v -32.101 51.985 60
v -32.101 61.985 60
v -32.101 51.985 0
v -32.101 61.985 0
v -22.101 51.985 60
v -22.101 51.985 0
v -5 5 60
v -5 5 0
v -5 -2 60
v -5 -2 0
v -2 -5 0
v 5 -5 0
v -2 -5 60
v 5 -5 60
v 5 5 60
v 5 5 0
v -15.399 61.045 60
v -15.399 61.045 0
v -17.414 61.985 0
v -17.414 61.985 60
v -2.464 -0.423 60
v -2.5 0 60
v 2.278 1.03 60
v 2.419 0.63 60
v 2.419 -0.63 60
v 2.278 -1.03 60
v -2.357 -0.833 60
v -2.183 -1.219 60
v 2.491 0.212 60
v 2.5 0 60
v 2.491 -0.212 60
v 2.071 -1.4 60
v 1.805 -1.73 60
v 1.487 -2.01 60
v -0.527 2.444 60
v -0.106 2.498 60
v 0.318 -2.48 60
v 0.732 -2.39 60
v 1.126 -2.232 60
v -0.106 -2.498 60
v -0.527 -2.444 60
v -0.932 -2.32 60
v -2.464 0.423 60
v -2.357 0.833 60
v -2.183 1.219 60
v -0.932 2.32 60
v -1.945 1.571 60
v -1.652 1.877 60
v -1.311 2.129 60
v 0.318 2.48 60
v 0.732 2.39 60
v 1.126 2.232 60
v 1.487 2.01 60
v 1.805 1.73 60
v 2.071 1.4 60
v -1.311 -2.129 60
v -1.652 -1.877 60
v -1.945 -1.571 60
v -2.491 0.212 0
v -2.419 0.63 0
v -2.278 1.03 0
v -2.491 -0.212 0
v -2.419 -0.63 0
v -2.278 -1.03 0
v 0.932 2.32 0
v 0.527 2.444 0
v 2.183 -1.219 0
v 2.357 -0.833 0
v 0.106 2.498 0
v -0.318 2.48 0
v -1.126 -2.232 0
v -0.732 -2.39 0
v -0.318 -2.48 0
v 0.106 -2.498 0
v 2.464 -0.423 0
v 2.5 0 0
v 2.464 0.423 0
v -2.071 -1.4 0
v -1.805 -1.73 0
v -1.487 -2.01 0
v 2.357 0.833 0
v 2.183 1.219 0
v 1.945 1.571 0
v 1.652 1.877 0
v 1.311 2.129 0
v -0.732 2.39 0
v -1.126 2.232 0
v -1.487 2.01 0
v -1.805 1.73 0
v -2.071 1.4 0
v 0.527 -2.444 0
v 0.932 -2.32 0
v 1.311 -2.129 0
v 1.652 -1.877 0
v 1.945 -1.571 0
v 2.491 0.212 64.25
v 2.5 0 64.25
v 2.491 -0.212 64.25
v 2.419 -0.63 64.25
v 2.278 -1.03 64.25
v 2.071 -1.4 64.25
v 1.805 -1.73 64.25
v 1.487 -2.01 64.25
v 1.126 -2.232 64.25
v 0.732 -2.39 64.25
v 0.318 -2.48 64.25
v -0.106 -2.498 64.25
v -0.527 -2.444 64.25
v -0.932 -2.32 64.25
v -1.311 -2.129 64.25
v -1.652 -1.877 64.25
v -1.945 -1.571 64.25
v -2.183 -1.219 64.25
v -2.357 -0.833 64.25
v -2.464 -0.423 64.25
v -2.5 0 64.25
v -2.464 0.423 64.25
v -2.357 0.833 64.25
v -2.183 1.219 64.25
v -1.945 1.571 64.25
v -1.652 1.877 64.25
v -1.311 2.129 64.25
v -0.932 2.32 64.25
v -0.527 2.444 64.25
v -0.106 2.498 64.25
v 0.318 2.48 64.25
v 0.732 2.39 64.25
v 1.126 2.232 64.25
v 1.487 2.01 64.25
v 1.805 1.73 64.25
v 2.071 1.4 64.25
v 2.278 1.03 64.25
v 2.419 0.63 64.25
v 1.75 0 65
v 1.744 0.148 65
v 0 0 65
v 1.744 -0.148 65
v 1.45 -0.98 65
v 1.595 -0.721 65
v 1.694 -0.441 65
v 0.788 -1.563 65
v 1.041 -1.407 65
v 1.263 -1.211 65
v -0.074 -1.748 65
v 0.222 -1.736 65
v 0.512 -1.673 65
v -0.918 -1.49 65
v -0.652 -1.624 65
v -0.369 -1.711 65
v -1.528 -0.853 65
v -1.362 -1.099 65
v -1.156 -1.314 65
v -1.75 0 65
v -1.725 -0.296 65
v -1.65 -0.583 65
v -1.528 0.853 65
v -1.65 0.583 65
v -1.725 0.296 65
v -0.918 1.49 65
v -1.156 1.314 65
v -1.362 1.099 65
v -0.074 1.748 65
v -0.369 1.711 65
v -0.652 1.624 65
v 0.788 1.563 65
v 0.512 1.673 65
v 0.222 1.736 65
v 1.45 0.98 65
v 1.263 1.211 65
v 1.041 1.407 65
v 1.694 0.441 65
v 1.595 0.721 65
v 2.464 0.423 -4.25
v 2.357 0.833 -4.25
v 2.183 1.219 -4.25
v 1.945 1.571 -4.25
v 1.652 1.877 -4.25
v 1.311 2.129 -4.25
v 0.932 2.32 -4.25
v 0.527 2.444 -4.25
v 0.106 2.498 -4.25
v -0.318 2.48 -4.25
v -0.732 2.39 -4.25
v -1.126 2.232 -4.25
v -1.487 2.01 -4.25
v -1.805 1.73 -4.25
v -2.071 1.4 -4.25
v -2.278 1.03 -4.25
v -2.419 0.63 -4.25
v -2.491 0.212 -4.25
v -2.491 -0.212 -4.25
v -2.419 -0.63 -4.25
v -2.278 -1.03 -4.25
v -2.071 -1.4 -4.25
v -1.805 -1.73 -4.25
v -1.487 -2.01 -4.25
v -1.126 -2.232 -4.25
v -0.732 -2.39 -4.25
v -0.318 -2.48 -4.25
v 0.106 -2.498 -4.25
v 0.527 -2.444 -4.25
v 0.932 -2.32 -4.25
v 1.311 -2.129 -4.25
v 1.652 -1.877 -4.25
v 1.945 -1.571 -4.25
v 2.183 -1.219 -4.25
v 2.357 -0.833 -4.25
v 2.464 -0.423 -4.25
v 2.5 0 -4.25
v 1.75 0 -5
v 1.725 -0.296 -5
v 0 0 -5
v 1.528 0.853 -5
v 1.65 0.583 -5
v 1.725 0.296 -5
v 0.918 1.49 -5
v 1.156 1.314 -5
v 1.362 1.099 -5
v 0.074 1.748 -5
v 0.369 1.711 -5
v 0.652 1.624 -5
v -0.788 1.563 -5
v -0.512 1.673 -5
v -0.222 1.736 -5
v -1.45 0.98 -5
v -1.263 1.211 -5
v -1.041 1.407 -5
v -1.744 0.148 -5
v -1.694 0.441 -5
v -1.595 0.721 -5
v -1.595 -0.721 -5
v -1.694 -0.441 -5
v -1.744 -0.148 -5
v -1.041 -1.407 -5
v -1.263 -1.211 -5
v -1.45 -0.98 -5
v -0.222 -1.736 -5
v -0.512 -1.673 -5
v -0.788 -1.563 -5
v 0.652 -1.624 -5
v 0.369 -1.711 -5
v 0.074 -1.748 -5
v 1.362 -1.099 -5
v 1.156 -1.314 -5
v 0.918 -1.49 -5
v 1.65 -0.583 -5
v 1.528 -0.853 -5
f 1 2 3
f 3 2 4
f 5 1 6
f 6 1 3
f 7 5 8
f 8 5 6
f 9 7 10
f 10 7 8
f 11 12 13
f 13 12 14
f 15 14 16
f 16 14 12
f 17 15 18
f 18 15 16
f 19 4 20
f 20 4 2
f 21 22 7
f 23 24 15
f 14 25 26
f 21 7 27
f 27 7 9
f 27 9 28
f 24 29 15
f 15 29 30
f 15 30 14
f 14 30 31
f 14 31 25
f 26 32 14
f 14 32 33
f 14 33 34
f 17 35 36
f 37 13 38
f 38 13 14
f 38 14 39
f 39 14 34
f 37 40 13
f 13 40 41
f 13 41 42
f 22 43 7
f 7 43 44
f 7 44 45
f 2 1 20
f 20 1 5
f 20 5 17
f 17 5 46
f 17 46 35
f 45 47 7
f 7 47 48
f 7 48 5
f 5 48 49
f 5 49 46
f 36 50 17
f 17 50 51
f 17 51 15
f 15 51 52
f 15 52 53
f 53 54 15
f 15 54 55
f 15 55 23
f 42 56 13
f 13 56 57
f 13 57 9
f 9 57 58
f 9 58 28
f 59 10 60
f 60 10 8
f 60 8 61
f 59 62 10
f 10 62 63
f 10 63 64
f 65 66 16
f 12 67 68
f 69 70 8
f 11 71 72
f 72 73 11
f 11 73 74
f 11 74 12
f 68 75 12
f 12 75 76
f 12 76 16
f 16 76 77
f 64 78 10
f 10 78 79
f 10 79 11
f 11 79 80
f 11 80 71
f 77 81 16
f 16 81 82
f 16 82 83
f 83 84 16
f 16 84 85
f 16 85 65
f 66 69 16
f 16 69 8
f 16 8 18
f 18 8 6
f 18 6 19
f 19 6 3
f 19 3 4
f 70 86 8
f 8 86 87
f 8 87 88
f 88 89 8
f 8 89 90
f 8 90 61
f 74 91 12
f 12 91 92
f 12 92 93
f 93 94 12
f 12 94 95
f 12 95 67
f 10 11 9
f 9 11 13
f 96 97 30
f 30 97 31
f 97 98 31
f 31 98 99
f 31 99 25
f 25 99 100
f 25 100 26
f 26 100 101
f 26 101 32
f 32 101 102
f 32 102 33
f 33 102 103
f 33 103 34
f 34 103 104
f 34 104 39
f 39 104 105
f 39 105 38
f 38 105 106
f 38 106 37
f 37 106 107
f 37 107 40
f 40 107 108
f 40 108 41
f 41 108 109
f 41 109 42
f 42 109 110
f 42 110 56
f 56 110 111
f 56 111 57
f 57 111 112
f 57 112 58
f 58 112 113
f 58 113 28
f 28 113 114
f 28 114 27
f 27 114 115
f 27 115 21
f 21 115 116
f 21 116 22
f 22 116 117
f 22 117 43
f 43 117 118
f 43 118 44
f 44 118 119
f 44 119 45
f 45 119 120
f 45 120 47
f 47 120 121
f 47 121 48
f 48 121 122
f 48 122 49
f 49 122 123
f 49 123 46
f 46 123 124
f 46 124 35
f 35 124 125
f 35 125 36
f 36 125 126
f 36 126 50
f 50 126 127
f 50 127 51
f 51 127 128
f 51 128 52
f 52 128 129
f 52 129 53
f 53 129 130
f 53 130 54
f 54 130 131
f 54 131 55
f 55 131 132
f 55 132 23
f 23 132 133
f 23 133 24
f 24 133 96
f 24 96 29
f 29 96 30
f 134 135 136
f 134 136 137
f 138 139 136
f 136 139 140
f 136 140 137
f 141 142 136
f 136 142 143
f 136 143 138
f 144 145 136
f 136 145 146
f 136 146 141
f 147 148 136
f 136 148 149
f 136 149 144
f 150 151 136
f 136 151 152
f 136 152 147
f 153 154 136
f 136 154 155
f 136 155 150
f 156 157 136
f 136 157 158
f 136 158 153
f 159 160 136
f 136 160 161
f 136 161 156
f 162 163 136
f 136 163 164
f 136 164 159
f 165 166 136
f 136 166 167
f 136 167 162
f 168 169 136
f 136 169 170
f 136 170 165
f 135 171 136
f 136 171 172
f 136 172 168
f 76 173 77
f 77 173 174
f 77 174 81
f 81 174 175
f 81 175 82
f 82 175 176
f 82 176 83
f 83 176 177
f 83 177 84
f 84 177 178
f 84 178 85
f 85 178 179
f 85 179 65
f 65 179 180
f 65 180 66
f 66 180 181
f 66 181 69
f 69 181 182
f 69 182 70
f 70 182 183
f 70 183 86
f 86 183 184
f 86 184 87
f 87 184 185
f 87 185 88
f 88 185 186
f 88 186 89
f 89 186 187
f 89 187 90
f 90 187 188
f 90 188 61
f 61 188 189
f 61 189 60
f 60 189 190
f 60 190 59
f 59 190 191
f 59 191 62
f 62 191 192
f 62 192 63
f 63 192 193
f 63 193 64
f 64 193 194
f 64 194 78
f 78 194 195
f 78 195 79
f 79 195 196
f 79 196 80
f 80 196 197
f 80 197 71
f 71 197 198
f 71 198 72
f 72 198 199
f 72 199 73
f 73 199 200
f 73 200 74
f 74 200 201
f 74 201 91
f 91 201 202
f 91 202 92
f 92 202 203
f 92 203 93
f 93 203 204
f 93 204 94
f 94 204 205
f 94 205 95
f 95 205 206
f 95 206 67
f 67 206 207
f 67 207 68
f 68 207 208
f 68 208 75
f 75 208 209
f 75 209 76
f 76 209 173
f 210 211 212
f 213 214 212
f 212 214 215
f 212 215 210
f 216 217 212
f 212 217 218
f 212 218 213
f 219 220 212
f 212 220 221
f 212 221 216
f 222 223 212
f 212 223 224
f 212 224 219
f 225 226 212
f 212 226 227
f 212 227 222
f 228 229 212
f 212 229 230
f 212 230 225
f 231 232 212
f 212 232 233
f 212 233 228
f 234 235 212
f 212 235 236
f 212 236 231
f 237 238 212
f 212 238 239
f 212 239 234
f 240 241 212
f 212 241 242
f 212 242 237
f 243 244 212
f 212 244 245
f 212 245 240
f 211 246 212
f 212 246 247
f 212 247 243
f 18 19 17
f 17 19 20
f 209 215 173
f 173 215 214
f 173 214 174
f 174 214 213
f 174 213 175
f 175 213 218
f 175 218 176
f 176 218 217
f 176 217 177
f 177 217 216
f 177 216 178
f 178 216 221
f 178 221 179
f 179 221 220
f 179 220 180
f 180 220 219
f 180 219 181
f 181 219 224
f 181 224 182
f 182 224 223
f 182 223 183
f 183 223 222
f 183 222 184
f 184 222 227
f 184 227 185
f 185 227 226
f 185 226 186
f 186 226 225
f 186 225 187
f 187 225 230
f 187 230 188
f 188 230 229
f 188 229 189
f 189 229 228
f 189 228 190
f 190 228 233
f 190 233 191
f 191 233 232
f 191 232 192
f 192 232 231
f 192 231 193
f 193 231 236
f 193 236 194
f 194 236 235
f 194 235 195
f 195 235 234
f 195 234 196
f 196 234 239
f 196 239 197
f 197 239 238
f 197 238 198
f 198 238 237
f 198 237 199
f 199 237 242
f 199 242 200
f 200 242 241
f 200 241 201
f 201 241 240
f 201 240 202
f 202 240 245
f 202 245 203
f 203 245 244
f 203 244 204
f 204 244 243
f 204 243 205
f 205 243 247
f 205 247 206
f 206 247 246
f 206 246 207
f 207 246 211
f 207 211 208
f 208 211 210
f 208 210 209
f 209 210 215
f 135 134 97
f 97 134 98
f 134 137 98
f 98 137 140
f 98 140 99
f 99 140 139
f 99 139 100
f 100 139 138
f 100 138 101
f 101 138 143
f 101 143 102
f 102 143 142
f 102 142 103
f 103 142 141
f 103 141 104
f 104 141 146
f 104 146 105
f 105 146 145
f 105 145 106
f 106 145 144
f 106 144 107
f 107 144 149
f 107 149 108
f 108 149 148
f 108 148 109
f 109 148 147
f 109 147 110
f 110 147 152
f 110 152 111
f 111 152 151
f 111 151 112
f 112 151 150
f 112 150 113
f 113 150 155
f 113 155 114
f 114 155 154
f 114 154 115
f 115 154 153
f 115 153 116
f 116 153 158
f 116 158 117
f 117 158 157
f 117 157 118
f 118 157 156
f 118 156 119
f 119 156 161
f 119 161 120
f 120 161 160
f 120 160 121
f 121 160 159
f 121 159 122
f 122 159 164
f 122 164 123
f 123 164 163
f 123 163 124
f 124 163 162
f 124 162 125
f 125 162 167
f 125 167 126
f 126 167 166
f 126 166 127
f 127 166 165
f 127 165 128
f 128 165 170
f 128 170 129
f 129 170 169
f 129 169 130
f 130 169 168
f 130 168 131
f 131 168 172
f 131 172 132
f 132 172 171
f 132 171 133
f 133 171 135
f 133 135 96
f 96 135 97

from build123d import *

# Parameters (mm, degrees)
SKETCH1_W           = 10.000000000000004
SKETCH1_H           = 10
SKETCH1_W_2         = 10
BOSS_EXTRUDE1_DEPTH = 60
CHAMFER1_SIZE       = 3
SKETCH2_R           = 2.5
BOSS_EXTRUDE2_DEPTH = 5
BOSS_EXTRUDE3_START = -65
SKETCH2_2_R         = 2.5
BOSS_EXTRUDE3_DEPTH = 5
CHAMFER2_SIZE       = 1
CHAMFER2_SIZE2      = 1.6731571851015
CHAMFER3_SIZE       = 0.75


with BuildPart() as part:
    # Sketch1 → Boss-Extrude1 (new body)
    with BuildSketch(Plane.XY):
        with Locations((-27.101007166283644, 56.98463103929536)):
            Rectangle(SKETCH1_W, SKETCH1_H)
        Polygon((-12.10100716628364, 51.98463103929536), (-15.740709508945711, 61.98463103929536), (-22.10100716628364, 61.98463103929536), (-22.10100716628364, 51.98463103929536), (-5, 5), (5, 5), align=None)
        Rectangle(SKETCH1_W_2, SKETCH1_H)
    extrude(amount=BOSS_EXTRUDE1_DEPTH)

    # Chamfer1
    chamfer1_edges = [part.edges().sort_by_distance(p)[0] for p in [
        (-5, -5, 30),
    ]]
    chamfer(chamfer1_edges, length=CHAMFER1_SIZE)

    # Sketch2 → Boss-Extrude2 (add)
    with BuildSketch(Plane.XY.offset(60)):
        Circle(SKETCH2_R)
    extrude(amount=BOSS_EXTRUDE2_DEPTH)

    # Sketch2<2> → Boss-Extrude3 (add)
    with BuildSketch(Plane.XY.offset(60).offset(BOSS_EXTRUDE3_START)):
        Circle(SKETCH2_2_R)
    extrude(amount=BOSS_EXTRUDE3_DEPTH)

    # Chamfer2
    chamfer2_edges = [part.edges().sort_by_distance(p)[0] for p in [
        (-15.740709508945711, 61.98463103929536, 30),
    ]]
    chamfer2_side = [part.faces().sort_by_distance(p)[0] for p in [
        (-5.3703547544728565, 33.492315519647676, 30),
    ]]
    chamfer(chamfer2_edges, length=CHAMFER2_SIZE, length2=CHAMFER2_SIZE2, reference=chamfer2_side[0])

    # Chamfer3
    chamfer3_edges = [part.edges().sort_by_distance(p)[0] for p in [
        (-2.5, 3.1e-16, 65),
        (-2.5, 3.1e-16, -5),
    ]]
    chamfer(chamfer3_edges, length=CHAMFER3_SIZE)


solid = part.part
